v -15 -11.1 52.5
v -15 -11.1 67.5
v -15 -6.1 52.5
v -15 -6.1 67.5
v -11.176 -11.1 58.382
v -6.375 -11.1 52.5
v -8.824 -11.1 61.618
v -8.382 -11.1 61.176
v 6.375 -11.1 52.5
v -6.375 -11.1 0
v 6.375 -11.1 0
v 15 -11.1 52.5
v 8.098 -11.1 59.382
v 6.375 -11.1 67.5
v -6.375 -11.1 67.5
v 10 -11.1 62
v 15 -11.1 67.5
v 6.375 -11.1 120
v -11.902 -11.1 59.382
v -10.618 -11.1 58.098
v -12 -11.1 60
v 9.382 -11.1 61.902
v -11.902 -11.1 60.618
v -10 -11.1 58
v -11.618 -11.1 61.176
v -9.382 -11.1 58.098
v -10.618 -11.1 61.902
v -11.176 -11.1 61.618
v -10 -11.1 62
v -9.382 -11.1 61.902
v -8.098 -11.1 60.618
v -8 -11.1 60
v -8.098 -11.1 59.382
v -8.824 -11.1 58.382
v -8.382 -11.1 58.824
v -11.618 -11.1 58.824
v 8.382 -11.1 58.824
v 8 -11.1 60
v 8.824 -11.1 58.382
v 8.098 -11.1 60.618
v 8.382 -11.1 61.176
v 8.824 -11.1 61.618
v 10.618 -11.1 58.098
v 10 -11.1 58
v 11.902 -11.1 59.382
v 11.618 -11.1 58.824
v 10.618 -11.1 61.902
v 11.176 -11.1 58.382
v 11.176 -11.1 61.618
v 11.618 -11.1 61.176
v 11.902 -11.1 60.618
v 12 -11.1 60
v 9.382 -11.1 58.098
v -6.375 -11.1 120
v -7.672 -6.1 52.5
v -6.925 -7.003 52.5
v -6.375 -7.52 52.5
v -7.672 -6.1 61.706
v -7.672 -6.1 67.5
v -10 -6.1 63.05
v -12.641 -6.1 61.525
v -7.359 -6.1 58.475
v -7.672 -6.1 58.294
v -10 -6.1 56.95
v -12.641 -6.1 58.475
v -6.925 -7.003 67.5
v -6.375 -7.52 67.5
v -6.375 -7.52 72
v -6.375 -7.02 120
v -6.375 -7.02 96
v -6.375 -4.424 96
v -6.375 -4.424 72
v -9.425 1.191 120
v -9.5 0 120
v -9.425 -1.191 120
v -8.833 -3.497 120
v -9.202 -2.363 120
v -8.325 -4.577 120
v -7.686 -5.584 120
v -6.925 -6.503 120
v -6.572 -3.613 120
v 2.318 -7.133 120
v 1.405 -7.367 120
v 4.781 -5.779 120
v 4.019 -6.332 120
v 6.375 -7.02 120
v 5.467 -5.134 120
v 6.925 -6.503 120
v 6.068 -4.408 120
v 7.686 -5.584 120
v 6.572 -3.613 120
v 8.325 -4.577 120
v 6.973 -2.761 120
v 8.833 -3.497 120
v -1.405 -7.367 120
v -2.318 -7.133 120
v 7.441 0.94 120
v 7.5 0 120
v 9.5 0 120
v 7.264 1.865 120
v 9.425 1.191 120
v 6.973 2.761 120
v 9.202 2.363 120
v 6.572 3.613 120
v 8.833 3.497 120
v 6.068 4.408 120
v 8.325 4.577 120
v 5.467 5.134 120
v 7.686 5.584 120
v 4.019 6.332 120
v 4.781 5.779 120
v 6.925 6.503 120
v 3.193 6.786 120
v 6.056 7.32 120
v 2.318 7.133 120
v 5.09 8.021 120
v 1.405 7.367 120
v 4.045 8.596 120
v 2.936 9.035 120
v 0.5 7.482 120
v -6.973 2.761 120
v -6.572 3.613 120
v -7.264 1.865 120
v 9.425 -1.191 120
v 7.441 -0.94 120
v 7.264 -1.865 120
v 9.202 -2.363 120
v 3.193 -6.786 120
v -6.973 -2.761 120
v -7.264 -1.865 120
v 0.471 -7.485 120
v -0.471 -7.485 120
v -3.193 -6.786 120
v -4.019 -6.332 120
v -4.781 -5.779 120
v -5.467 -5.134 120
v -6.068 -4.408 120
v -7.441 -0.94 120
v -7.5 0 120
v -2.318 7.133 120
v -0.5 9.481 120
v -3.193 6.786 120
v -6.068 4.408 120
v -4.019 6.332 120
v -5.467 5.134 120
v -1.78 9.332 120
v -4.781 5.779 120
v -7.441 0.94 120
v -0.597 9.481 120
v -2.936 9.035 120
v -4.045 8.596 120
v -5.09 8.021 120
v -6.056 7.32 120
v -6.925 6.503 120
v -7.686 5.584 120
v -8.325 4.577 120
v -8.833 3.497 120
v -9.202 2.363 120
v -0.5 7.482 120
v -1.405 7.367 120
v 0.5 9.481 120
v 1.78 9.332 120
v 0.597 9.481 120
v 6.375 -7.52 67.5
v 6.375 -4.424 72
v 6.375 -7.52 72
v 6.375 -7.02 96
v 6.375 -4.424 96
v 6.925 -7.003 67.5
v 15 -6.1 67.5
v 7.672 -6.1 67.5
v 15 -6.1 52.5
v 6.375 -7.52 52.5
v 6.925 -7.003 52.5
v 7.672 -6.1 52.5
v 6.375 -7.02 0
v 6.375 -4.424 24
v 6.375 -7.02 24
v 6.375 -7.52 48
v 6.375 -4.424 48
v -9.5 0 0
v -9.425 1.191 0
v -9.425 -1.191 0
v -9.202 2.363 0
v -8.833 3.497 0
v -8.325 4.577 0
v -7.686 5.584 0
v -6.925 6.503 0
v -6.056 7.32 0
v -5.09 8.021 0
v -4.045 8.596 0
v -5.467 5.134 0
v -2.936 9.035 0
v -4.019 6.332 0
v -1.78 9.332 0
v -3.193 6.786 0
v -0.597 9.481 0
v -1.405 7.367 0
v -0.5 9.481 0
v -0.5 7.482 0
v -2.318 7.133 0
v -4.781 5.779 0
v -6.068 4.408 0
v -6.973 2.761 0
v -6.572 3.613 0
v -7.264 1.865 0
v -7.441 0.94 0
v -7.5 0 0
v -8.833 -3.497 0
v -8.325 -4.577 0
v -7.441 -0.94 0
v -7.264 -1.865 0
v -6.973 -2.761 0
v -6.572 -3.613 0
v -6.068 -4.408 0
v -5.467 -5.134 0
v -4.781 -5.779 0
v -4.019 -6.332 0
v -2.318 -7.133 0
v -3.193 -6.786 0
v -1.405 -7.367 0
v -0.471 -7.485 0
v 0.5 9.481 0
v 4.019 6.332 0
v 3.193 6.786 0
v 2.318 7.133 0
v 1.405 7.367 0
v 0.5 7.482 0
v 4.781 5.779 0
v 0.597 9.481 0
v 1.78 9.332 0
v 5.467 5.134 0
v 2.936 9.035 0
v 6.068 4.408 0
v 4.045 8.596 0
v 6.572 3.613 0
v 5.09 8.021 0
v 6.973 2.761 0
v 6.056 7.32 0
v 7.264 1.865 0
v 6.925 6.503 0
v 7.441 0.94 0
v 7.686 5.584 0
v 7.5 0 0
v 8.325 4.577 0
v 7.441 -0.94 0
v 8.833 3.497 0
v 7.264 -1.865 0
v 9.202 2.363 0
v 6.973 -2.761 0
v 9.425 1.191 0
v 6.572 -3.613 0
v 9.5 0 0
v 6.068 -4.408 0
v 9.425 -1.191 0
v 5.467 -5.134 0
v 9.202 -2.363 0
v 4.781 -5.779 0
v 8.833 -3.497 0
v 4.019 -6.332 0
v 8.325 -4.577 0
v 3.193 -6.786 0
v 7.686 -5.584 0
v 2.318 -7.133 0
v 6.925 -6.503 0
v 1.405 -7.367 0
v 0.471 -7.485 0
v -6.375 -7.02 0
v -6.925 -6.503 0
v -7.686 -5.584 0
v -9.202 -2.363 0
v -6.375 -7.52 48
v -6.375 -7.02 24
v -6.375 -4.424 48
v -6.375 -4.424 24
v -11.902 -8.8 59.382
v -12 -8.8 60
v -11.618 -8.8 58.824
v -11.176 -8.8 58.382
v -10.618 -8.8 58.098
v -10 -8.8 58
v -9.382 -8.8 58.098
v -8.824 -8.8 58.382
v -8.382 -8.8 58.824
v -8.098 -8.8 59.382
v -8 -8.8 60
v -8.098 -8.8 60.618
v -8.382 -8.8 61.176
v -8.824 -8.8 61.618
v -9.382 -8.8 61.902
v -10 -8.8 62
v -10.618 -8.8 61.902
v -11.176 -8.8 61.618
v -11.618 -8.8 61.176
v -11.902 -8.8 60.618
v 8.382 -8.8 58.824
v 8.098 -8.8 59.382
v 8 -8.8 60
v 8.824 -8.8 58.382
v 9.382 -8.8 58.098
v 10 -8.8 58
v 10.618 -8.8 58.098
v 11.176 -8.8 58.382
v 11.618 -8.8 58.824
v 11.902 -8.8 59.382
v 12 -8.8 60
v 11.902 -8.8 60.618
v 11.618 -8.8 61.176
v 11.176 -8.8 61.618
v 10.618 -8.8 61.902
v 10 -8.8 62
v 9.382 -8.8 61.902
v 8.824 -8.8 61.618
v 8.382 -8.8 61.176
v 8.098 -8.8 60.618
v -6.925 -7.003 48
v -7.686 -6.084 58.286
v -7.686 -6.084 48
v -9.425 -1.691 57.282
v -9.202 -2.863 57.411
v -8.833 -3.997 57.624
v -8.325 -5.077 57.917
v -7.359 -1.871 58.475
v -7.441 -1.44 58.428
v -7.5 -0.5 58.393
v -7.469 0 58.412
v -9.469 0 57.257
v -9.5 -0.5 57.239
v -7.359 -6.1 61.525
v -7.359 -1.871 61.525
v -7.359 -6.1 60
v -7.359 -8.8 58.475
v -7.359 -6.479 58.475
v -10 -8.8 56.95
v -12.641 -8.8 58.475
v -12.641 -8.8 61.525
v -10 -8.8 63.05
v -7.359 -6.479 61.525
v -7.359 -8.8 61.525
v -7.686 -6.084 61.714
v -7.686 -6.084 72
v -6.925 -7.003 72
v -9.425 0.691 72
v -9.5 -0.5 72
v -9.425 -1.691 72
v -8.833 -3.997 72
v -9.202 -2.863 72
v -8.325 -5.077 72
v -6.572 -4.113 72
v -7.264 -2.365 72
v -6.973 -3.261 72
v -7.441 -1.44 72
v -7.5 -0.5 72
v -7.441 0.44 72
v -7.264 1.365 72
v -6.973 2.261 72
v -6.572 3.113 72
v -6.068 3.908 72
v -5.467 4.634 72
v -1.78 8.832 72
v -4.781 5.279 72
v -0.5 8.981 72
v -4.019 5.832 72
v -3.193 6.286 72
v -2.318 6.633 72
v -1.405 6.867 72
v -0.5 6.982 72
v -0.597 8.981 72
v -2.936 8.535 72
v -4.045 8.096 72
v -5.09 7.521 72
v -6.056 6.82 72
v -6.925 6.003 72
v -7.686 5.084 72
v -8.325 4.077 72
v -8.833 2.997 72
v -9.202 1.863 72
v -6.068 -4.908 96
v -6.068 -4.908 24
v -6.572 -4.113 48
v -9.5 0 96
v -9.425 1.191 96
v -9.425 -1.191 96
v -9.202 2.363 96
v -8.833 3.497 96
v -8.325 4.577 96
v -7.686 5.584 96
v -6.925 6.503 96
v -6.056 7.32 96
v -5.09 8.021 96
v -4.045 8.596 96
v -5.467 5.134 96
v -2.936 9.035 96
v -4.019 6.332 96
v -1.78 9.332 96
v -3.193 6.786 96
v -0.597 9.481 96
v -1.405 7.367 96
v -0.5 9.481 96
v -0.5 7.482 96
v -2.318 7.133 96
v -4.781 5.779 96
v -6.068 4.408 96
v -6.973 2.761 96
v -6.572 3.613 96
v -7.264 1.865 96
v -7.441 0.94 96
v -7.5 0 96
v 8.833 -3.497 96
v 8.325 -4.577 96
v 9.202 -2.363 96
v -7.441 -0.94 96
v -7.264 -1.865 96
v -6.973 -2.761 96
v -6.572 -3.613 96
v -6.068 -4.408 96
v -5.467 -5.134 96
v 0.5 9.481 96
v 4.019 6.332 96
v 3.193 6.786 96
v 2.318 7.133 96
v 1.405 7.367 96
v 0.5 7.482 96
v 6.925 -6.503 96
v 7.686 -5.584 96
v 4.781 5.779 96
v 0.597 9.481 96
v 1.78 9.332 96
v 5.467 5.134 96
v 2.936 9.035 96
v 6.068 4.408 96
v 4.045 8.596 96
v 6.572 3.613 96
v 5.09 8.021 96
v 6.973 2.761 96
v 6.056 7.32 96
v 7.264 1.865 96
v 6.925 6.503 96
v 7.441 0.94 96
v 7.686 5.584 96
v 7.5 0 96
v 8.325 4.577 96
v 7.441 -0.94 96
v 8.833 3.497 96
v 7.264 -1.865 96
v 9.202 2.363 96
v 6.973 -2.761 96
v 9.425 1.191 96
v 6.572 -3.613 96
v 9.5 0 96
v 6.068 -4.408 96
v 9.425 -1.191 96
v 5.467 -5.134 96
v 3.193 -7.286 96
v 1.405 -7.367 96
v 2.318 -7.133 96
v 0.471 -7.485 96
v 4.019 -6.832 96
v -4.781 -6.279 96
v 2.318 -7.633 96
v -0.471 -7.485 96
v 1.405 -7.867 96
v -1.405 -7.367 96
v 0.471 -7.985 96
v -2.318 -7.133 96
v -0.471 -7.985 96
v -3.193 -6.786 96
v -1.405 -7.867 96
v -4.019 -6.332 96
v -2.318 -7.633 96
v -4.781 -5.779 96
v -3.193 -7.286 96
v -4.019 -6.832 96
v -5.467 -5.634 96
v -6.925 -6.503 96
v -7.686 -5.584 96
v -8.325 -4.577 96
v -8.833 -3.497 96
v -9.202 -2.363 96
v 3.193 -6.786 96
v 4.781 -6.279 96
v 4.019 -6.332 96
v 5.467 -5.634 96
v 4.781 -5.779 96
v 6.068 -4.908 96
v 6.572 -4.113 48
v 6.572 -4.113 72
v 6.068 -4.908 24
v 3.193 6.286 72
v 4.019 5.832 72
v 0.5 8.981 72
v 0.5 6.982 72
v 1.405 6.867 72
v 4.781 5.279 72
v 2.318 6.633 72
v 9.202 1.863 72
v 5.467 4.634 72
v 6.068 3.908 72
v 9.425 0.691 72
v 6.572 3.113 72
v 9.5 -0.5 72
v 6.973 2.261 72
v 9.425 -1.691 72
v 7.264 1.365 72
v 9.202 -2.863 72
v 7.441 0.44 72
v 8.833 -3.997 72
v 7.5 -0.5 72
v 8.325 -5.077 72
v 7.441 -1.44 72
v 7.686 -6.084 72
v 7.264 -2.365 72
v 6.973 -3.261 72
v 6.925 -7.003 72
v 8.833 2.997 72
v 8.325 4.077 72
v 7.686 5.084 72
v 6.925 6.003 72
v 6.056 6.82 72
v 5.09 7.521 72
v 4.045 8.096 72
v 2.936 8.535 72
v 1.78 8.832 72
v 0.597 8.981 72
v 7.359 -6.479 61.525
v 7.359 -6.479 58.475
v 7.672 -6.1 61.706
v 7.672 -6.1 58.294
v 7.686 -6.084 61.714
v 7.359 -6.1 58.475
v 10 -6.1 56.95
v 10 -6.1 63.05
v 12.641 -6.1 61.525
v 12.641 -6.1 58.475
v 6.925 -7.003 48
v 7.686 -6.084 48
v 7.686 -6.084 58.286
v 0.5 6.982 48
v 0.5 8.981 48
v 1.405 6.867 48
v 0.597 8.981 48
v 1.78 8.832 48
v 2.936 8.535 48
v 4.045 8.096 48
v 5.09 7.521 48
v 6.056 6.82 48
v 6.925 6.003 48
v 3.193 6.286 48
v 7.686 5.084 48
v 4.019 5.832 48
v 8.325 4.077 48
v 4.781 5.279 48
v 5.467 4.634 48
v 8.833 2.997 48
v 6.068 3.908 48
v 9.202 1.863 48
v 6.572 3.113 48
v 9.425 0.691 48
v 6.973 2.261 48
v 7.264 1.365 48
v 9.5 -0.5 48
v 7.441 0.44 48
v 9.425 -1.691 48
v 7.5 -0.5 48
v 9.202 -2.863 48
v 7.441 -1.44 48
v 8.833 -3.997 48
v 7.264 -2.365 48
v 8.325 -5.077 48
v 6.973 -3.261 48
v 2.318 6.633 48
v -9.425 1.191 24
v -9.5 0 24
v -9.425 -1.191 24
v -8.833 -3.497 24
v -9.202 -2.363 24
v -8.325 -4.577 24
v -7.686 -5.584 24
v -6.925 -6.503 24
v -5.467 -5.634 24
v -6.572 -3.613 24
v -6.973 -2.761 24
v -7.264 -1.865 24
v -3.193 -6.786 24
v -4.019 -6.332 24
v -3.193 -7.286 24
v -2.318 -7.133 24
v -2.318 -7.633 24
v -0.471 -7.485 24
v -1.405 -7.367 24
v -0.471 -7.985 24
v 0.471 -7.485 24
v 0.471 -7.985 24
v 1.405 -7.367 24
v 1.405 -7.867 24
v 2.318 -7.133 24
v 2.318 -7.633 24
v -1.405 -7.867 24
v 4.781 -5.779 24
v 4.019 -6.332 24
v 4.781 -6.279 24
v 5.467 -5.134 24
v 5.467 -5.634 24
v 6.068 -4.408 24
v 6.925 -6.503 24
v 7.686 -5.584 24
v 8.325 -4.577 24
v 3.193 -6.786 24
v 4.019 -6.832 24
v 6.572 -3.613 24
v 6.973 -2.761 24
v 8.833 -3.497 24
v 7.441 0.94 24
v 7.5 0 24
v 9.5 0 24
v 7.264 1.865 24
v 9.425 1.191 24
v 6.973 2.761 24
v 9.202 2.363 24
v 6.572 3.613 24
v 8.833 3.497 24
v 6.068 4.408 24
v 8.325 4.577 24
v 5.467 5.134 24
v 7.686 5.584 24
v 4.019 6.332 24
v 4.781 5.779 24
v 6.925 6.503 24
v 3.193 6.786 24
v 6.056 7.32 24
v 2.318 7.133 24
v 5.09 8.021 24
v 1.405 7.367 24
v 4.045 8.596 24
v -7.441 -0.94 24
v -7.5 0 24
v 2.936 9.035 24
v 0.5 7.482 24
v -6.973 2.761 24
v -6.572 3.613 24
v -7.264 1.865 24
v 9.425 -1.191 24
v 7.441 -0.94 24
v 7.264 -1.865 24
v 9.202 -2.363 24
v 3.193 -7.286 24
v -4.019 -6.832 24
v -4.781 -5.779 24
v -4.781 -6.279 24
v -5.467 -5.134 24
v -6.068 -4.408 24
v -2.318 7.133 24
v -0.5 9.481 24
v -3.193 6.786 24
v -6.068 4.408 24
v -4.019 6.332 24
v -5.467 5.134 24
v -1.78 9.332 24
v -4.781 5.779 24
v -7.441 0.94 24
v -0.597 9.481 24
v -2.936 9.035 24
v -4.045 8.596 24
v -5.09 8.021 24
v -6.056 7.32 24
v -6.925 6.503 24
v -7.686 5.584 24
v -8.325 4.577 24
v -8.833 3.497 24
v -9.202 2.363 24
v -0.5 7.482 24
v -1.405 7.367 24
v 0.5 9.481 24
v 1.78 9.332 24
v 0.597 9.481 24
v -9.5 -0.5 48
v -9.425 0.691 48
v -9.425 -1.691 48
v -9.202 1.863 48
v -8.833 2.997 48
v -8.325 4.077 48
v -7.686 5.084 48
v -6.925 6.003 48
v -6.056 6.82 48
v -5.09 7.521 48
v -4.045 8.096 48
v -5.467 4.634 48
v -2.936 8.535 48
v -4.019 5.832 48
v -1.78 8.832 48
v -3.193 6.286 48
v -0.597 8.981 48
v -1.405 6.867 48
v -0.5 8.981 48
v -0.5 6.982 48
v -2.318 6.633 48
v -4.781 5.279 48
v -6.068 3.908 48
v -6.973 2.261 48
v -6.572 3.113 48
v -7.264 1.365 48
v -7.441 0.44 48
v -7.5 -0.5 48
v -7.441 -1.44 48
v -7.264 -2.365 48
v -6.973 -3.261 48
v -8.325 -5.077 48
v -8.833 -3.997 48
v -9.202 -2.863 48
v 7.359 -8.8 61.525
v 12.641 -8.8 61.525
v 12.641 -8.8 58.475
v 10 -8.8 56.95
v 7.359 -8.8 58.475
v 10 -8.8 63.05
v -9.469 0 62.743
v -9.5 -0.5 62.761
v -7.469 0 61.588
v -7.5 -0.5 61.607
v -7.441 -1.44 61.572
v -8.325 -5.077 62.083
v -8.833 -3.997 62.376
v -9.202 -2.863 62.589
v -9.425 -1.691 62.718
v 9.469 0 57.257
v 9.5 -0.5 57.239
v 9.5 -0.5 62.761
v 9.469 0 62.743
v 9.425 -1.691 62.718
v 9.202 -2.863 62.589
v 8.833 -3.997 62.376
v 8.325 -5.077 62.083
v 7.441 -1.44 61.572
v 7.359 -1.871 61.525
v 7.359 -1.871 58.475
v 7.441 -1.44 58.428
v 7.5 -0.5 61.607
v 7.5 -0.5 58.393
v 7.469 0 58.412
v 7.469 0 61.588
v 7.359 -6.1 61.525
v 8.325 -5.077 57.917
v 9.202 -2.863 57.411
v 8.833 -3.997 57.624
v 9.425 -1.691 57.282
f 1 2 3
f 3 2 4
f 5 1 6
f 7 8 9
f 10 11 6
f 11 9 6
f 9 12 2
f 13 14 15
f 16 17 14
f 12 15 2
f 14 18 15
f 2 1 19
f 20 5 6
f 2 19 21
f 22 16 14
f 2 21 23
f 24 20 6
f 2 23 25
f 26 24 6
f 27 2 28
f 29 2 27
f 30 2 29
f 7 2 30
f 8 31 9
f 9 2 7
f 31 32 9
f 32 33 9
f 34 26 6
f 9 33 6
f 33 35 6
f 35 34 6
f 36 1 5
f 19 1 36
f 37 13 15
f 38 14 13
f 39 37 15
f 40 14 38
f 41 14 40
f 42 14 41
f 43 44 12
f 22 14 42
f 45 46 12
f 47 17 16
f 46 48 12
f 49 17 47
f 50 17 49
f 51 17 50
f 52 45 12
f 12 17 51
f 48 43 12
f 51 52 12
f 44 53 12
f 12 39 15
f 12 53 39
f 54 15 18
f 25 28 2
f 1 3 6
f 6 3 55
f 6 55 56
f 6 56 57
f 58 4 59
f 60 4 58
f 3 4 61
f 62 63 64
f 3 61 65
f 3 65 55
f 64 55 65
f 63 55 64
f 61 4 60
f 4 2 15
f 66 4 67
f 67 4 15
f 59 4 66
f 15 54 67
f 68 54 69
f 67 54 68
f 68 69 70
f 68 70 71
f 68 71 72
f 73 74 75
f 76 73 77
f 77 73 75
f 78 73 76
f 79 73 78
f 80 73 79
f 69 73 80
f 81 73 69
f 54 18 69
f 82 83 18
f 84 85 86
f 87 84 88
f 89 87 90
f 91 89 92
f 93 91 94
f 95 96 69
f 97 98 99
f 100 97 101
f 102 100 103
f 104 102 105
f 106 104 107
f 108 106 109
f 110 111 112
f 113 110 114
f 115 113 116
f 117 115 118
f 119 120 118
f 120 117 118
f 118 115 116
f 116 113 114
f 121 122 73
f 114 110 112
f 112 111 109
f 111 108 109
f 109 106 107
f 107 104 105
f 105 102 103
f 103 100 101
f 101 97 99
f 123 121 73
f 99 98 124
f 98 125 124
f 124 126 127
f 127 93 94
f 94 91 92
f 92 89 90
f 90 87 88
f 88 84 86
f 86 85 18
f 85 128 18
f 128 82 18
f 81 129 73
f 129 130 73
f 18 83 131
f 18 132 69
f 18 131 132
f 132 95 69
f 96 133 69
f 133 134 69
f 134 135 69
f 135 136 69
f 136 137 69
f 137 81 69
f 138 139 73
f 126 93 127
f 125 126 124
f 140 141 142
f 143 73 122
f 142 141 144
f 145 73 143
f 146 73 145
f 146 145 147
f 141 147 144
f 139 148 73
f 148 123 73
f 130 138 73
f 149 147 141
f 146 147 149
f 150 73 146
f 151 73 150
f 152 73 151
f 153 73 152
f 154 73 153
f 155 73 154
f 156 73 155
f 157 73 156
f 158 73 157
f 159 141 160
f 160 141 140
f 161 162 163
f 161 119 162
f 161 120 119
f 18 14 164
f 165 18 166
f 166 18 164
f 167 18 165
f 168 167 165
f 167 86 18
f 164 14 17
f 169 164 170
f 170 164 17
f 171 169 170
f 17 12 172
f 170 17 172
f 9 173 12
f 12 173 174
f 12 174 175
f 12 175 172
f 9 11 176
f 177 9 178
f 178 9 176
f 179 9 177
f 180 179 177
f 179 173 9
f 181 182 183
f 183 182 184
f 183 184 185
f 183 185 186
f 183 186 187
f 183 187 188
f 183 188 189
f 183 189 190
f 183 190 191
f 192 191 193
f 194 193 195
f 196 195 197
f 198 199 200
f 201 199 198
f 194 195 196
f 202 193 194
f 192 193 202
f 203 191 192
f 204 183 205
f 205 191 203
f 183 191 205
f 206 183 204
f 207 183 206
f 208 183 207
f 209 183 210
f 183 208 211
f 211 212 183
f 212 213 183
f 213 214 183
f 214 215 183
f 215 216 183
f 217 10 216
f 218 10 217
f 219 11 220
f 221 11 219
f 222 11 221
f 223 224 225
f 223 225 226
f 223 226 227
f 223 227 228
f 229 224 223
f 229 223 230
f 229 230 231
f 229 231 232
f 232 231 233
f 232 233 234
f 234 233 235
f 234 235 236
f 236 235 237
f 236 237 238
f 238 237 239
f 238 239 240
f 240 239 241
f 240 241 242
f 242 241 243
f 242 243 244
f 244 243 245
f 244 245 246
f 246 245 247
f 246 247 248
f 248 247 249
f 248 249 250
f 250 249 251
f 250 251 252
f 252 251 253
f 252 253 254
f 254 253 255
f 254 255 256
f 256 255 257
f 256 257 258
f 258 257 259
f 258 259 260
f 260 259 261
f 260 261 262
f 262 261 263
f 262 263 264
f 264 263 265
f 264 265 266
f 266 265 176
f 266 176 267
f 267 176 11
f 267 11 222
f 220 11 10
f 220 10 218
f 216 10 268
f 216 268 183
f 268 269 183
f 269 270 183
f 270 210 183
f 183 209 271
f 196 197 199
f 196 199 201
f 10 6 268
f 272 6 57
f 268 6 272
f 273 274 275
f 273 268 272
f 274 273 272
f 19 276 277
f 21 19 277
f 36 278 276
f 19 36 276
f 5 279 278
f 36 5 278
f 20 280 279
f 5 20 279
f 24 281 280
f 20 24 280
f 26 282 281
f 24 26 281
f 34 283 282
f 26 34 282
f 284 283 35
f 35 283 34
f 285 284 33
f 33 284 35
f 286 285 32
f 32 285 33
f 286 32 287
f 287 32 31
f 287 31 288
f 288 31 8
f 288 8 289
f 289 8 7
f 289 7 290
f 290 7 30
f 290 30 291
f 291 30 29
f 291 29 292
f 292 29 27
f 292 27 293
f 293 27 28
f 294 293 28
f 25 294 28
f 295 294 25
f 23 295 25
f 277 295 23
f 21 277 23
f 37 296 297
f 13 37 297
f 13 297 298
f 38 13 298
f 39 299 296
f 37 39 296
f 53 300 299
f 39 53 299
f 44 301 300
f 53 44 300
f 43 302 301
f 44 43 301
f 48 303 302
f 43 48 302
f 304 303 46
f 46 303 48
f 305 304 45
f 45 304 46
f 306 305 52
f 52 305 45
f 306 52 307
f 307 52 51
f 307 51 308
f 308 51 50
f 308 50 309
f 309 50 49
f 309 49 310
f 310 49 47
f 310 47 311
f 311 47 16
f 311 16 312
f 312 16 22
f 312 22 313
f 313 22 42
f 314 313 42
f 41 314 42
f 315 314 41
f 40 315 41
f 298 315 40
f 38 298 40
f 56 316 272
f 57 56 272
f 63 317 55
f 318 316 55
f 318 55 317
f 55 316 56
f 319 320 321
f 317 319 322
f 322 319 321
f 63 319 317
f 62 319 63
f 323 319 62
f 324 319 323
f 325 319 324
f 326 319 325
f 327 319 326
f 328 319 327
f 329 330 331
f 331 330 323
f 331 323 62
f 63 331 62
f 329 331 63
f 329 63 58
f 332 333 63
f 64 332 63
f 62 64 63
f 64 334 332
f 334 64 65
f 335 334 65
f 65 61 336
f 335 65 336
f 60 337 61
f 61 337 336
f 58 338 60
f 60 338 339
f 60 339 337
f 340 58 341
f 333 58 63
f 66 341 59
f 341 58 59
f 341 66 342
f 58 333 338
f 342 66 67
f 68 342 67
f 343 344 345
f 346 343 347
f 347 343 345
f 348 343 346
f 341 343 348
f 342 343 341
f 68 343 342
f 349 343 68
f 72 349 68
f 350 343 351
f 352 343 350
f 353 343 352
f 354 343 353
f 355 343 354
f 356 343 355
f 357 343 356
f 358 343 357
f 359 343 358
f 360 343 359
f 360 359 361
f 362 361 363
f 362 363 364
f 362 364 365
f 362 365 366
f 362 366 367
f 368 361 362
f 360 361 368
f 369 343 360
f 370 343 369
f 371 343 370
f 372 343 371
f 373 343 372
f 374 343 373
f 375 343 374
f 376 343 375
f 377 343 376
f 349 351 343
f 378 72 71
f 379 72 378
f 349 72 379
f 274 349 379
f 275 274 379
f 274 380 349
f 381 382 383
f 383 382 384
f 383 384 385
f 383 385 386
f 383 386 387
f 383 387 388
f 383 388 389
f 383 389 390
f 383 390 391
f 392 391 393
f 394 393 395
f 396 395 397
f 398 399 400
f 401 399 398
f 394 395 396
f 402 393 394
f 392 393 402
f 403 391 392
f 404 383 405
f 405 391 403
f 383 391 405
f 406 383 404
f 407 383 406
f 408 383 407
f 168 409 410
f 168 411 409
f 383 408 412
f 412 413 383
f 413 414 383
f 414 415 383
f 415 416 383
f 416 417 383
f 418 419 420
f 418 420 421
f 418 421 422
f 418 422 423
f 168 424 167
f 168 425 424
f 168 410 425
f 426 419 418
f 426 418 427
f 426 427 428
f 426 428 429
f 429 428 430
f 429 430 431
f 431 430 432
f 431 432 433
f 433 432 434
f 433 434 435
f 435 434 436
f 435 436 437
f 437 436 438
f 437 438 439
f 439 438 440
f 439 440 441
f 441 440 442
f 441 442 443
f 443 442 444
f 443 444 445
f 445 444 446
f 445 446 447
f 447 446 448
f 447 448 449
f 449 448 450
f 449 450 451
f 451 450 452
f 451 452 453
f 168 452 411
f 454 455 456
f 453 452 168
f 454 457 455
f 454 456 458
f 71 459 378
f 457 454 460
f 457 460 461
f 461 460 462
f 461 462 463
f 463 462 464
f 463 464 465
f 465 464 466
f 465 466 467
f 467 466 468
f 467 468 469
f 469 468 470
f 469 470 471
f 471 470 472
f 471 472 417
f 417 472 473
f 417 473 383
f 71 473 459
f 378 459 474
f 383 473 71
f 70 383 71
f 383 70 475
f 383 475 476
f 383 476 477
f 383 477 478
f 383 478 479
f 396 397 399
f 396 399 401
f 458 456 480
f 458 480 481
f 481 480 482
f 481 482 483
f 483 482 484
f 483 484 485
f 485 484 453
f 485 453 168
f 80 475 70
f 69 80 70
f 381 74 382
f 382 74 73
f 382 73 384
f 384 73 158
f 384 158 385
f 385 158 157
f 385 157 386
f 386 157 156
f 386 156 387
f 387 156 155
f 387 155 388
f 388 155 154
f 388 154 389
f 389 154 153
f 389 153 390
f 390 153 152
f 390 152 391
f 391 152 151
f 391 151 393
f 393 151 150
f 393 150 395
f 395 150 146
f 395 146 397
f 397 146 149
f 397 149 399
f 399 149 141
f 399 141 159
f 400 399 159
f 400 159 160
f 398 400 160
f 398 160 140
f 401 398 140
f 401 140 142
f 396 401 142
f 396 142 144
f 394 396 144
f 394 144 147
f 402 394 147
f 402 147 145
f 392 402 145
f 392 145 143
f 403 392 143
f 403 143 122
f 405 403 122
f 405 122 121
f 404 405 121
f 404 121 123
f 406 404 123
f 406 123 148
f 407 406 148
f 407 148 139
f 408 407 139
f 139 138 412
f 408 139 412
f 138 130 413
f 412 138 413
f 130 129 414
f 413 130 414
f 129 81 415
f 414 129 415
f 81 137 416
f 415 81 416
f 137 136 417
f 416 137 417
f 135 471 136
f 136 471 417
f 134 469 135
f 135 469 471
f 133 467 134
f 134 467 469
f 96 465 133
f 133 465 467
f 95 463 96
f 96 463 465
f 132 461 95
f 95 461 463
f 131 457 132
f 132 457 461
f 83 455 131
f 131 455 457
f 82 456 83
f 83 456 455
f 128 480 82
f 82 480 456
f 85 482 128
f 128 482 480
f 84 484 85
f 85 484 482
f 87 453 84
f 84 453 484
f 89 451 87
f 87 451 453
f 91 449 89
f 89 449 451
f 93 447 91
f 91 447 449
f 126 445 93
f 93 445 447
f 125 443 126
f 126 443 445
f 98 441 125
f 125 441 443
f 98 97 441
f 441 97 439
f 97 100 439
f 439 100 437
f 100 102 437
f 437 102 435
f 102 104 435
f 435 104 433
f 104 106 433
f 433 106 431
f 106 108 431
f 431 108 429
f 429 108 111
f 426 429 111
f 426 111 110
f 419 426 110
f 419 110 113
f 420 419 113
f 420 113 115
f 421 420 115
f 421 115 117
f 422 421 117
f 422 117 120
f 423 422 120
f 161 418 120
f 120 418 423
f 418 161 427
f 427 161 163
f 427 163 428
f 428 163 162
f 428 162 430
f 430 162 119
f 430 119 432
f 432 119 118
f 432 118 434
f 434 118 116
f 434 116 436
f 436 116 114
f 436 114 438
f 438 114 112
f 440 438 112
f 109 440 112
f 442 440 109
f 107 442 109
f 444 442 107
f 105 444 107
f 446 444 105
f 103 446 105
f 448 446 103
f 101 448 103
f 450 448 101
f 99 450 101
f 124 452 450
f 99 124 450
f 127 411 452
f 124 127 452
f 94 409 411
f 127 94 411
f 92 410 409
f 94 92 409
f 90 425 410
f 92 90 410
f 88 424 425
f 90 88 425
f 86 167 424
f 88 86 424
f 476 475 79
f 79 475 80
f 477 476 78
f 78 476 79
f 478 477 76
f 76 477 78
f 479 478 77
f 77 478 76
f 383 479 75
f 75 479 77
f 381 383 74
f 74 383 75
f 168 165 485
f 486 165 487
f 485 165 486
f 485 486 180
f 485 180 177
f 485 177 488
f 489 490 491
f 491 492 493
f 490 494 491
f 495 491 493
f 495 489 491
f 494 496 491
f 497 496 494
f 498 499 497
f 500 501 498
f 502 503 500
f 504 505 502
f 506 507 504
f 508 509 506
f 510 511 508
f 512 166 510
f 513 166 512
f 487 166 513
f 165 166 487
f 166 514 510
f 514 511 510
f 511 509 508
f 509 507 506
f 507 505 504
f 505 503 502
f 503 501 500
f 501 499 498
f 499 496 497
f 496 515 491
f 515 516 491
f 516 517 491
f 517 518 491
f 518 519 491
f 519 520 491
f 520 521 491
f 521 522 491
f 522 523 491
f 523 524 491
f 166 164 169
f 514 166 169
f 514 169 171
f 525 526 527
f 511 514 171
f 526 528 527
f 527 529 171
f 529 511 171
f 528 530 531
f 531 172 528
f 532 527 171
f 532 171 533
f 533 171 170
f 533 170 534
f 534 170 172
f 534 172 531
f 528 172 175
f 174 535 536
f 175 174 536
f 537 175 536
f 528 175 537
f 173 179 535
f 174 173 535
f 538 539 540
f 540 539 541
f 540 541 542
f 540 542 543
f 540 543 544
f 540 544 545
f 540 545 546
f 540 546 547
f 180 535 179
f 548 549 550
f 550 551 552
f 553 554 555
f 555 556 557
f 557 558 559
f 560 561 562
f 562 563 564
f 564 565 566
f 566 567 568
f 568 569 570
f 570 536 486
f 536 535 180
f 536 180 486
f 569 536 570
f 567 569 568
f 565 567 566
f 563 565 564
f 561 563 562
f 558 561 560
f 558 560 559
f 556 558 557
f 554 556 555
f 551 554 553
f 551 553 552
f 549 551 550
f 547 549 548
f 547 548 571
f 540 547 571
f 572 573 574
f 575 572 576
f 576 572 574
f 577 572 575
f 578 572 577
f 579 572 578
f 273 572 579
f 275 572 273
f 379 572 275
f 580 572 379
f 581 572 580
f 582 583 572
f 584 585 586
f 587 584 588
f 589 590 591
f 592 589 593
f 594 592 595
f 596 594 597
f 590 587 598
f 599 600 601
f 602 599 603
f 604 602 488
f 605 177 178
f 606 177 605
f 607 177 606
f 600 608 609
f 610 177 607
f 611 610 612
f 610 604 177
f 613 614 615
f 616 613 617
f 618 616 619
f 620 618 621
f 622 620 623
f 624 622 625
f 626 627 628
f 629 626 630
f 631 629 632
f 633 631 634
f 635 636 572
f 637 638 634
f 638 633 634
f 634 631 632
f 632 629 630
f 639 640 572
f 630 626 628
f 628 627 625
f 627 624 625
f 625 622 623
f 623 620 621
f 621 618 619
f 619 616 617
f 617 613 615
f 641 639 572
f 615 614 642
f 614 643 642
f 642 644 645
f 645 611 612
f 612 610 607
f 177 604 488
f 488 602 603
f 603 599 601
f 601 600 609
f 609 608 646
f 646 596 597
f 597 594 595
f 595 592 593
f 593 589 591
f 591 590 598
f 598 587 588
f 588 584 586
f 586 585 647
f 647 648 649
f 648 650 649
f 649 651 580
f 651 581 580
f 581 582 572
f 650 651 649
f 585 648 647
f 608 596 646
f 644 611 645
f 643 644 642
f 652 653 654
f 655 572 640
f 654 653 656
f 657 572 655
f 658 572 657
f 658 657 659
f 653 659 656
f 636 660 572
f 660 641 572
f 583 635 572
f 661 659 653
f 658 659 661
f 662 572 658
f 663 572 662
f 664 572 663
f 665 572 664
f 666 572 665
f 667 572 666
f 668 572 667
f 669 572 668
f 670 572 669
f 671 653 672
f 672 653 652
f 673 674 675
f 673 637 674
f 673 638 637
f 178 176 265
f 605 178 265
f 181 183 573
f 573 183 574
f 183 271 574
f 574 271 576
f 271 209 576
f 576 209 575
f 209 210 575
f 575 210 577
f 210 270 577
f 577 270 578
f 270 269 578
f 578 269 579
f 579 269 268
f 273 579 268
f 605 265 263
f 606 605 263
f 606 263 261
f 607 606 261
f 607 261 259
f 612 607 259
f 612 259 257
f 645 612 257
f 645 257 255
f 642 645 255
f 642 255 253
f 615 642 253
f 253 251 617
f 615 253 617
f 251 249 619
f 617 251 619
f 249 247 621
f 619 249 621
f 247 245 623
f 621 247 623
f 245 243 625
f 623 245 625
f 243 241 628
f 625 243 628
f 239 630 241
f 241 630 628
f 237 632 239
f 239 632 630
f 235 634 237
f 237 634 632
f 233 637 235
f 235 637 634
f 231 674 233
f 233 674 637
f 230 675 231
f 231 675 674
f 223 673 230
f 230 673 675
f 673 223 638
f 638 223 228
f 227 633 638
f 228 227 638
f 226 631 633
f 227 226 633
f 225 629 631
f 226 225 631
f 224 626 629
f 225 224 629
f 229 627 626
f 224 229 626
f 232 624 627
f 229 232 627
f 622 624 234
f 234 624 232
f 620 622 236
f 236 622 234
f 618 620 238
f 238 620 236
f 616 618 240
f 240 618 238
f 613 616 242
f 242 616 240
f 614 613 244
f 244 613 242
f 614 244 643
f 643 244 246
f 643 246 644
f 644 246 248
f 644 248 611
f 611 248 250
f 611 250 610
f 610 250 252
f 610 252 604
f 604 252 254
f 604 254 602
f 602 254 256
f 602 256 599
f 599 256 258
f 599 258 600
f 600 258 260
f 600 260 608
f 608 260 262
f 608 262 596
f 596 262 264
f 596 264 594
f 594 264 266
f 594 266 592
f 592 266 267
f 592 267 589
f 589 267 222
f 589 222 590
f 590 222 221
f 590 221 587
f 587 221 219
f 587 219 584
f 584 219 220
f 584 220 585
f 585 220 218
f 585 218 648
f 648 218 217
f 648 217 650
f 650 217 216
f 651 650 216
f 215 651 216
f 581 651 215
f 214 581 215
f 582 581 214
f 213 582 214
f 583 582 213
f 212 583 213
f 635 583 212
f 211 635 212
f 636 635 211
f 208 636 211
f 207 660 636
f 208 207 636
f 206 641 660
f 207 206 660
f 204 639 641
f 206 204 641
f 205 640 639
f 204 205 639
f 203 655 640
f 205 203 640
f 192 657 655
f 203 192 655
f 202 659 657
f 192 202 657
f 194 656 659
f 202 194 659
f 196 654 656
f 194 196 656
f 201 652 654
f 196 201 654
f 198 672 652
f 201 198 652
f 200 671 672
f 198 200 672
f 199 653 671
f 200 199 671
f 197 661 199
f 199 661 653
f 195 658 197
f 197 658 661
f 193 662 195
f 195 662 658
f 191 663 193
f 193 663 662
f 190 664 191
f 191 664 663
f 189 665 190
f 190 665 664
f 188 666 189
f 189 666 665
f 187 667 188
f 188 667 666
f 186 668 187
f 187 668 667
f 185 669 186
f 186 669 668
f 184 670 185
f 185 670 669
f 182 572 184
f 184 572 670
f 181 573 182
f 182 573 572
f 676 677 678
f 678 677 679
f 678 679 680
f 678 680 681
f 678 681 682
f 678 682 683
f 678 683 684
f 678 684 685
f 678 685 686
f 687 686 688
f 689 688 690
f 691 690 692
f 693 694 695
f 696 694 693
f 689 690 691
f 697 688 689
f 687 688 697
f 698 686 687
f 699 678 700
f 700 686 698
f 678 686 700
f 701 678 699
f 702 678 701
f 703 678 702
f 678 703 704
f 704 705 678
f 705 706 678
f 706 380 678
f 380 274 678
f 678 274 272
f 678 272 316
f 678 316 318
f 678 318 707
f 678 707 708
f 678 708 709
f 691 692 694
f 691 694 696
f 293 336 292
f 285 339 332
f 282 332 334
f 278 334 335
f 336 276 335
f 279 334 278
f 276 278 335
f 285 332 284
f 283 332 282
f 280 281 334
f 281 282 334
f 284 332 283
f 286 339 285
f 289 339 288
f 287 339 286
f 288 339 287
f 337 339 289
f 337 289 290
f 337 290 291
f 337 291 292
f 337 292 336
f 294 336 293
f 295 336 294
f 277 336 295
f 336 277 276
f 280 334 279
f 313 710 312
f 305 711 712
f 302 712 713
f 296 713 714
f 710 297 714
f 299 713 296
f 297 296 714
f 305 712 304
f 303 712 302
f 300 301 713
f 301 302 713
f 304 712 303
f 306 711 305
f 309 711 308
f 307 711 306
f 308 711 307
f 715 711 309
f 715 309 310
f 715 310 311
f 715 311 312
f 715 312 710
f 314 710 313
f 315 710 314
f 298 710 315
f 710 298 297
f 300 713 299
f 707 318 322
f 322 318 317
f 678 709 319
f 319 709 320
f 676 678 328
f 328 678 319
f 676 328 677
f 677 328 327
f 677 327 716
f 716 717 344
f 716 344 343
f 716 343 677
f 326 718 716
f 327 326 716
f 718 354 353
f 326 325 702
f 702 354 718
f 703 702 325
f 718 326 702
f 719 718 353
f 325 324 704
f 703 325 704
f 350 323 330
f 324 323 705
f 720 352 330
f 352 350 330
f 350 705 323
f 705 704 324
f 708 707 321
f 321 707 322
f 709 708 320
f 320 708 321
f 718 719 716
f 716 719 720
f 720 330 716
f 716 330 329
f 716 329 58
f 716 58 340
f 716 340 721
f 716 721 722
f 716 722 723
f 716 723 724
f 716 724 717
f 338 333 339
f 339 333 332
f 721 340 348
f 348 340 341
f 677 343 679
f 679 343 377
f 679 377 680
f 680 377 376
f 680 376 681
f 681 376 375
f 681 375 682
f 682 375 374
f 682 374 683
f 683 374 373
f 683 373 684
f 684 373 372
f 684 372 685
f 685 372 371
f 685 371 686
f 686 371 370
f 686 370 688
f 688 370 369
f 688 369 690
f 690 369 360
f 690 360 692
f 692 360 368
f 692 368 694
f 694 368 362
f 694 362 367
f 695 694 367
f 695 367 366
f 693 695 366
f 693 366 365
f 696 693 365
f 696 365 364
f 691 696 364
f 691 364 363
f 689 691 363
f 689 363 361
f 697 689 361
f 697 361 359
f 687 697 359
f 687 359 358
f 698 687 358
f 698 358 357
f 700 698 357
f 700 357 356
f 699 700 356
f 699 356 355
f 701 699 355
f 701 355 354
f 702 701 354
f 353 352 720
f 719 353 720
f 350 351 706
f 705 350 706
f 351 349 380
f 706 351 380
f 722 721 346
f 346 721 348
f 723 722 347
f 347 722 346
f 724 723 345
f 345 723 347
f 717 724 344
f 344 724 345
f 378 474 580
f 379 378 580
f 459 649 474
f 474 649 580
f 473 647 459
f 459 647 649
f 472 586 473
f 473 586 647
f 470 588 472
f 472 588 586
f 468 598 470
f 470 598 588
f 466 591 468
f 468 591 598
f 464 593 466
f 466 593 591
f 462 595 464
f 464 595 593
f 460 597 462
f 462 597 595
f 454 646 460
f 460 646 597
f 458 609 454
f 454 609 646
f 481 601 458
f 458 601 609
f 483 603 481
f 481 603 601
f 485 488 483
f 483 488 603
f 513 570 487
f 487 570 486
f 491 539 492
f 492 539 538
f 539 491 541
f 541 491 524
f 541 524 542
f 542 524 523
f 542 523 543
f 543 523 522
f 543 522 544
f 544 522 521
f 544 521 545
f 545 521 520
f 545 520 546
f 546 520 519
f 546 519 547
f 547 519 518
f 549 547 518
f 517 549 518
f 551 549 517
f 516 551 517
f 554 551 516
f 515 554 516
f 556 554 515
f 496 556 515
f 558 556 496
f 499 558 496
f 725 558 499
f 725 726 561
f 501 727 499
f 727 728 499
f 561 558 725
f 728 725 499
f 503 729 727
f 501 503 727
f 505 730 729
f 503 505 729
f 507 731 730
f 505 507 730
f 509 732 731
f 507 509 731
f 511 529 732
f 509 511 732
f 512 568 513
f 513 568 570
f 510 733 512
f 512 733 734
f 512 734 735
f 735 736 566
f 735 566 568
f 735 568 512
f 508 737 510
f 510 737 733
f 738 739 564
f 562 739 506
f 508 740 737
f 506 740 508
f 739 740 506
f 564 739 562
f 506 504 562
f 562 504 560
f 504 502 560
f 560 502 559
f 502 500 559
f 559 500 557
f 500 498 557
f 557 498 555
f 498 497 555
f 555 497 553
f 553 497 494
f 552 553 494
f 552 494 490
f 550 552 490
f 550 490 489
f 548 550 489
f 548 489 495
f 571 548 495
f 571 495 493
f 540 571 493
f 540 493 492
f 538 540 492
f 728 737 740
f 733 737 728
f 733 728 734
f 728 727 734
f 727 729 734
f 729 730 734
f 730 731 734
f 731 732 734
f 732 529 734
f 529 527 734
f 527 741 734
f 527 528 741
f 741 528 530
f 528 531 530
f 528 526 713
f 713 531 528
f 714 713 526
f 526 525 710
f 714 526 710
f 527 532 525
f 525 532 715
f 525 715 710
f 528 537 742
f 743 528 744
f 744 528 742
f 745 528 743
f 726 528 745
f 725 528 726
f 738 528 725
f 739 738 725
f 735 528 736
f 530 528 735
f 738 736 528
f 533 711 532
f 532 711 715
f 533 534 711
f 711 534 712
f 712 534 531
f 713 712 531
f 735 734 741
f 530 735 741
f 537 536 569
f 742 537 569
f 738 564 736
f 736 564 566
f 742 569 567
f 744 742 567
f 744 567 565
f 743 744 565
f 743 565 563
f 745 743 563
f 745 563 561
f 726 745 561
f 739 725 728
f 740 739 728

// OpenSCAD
module lb_socket( r, h, wall_thickness = 2, opening_length = 1, $fn = 20 ) {
	difference () {
		cylinder( r = r + wall_thickness, h = h, $fn = $fn );
		translate( [ 0, 0, -0.1 ] ) {
			cylinder( r = r, h = h + 0.2, $fn = $fn );
			translate( [ -opening_length / 2, r - 0.2, 0 ] )
				cube( [ opening_length, wall_thickness + 0.4, h + 0.2 ] );
		}
	}
}

lb_socket( 7.5, 24, $fn = 50 );
difference() {
	translate ( [ 0, -0.5, 2 * 24 ] )
		lb_socket( 7.5, 24, $fn = 50 );
	translate( [ 30 / 2 - 5, 0, 2.5 * 24] )
		rotate( [ 90, 0, 0 ] ){
			rotate( [ 0, 0, 30 ] )
				cylinder( h = 6.1, r = 6.1 / 2, $fn=6 );
		}
	translate( [ -30 / 2 + 5, 0, 2.5 * 24] )
		rotate( [ 90, 0, 0 ] ){
			rotate( [ 0, 0, 30 ] )
				cylinder( h = 6.1, r = 6.1 / 2, $fn=6 );
		}
}
translate ( [ 0, 0, 4 * 24 ] )
	lb_socket( 7.5, 24, $fn = 50 );
basis_width = 0.85 * 2 * 7.5;
basis_height = 0.74 * 2 * 7.5;
difference (){
	union (){
		translate( [ - basis_width / 2, - basis_height, 0 ] )
			cube( [ basis_width, basis_height, 5 * 24 ] );
		translate ( [ -15, -basis_height, 5 * 24 / 2 - 15 / 2 ] )
			difference() {
				cube( [ 30, 5, 15 ] );
				translate( [ 5, 5 + 10, 15 / 2 ] )
					rotate( [ 90, 0, 0 ] ){
						cylinder( r = 2, h = 5 + 10.1, $fn = 20 );
						rotate( [ 0, 0, 30 ] )
							cylinder( h = 5 - 2.3 + 10, r = 6.1 / 2, $fn=6 );
					}
				translate( [ 30 - 5, 5 + 10, 15 / 2 ] )
					rotate( [ 90, 0, 0 ] ){
						cylinder( r = 2, h = 5 + 10.1, $fn = 20 );
						rotate( [ 0, 0, 30 ] )
							cylinder( h = 5 - 2.3 + 10, r = 6.1 / 2, $fn=6 );
					}
			}
	}

	translate( [ 0, 0, -0.1 ] )
		cylinder( r = 7.5, h = 5 * 24 + 0.2, $fn = 50 );
	translate( [ 0, -0.5, -0.1 ] )
		cylinder( r = 7.5, h = 5 * 24 + 0.2, $fn = 50 );
}
